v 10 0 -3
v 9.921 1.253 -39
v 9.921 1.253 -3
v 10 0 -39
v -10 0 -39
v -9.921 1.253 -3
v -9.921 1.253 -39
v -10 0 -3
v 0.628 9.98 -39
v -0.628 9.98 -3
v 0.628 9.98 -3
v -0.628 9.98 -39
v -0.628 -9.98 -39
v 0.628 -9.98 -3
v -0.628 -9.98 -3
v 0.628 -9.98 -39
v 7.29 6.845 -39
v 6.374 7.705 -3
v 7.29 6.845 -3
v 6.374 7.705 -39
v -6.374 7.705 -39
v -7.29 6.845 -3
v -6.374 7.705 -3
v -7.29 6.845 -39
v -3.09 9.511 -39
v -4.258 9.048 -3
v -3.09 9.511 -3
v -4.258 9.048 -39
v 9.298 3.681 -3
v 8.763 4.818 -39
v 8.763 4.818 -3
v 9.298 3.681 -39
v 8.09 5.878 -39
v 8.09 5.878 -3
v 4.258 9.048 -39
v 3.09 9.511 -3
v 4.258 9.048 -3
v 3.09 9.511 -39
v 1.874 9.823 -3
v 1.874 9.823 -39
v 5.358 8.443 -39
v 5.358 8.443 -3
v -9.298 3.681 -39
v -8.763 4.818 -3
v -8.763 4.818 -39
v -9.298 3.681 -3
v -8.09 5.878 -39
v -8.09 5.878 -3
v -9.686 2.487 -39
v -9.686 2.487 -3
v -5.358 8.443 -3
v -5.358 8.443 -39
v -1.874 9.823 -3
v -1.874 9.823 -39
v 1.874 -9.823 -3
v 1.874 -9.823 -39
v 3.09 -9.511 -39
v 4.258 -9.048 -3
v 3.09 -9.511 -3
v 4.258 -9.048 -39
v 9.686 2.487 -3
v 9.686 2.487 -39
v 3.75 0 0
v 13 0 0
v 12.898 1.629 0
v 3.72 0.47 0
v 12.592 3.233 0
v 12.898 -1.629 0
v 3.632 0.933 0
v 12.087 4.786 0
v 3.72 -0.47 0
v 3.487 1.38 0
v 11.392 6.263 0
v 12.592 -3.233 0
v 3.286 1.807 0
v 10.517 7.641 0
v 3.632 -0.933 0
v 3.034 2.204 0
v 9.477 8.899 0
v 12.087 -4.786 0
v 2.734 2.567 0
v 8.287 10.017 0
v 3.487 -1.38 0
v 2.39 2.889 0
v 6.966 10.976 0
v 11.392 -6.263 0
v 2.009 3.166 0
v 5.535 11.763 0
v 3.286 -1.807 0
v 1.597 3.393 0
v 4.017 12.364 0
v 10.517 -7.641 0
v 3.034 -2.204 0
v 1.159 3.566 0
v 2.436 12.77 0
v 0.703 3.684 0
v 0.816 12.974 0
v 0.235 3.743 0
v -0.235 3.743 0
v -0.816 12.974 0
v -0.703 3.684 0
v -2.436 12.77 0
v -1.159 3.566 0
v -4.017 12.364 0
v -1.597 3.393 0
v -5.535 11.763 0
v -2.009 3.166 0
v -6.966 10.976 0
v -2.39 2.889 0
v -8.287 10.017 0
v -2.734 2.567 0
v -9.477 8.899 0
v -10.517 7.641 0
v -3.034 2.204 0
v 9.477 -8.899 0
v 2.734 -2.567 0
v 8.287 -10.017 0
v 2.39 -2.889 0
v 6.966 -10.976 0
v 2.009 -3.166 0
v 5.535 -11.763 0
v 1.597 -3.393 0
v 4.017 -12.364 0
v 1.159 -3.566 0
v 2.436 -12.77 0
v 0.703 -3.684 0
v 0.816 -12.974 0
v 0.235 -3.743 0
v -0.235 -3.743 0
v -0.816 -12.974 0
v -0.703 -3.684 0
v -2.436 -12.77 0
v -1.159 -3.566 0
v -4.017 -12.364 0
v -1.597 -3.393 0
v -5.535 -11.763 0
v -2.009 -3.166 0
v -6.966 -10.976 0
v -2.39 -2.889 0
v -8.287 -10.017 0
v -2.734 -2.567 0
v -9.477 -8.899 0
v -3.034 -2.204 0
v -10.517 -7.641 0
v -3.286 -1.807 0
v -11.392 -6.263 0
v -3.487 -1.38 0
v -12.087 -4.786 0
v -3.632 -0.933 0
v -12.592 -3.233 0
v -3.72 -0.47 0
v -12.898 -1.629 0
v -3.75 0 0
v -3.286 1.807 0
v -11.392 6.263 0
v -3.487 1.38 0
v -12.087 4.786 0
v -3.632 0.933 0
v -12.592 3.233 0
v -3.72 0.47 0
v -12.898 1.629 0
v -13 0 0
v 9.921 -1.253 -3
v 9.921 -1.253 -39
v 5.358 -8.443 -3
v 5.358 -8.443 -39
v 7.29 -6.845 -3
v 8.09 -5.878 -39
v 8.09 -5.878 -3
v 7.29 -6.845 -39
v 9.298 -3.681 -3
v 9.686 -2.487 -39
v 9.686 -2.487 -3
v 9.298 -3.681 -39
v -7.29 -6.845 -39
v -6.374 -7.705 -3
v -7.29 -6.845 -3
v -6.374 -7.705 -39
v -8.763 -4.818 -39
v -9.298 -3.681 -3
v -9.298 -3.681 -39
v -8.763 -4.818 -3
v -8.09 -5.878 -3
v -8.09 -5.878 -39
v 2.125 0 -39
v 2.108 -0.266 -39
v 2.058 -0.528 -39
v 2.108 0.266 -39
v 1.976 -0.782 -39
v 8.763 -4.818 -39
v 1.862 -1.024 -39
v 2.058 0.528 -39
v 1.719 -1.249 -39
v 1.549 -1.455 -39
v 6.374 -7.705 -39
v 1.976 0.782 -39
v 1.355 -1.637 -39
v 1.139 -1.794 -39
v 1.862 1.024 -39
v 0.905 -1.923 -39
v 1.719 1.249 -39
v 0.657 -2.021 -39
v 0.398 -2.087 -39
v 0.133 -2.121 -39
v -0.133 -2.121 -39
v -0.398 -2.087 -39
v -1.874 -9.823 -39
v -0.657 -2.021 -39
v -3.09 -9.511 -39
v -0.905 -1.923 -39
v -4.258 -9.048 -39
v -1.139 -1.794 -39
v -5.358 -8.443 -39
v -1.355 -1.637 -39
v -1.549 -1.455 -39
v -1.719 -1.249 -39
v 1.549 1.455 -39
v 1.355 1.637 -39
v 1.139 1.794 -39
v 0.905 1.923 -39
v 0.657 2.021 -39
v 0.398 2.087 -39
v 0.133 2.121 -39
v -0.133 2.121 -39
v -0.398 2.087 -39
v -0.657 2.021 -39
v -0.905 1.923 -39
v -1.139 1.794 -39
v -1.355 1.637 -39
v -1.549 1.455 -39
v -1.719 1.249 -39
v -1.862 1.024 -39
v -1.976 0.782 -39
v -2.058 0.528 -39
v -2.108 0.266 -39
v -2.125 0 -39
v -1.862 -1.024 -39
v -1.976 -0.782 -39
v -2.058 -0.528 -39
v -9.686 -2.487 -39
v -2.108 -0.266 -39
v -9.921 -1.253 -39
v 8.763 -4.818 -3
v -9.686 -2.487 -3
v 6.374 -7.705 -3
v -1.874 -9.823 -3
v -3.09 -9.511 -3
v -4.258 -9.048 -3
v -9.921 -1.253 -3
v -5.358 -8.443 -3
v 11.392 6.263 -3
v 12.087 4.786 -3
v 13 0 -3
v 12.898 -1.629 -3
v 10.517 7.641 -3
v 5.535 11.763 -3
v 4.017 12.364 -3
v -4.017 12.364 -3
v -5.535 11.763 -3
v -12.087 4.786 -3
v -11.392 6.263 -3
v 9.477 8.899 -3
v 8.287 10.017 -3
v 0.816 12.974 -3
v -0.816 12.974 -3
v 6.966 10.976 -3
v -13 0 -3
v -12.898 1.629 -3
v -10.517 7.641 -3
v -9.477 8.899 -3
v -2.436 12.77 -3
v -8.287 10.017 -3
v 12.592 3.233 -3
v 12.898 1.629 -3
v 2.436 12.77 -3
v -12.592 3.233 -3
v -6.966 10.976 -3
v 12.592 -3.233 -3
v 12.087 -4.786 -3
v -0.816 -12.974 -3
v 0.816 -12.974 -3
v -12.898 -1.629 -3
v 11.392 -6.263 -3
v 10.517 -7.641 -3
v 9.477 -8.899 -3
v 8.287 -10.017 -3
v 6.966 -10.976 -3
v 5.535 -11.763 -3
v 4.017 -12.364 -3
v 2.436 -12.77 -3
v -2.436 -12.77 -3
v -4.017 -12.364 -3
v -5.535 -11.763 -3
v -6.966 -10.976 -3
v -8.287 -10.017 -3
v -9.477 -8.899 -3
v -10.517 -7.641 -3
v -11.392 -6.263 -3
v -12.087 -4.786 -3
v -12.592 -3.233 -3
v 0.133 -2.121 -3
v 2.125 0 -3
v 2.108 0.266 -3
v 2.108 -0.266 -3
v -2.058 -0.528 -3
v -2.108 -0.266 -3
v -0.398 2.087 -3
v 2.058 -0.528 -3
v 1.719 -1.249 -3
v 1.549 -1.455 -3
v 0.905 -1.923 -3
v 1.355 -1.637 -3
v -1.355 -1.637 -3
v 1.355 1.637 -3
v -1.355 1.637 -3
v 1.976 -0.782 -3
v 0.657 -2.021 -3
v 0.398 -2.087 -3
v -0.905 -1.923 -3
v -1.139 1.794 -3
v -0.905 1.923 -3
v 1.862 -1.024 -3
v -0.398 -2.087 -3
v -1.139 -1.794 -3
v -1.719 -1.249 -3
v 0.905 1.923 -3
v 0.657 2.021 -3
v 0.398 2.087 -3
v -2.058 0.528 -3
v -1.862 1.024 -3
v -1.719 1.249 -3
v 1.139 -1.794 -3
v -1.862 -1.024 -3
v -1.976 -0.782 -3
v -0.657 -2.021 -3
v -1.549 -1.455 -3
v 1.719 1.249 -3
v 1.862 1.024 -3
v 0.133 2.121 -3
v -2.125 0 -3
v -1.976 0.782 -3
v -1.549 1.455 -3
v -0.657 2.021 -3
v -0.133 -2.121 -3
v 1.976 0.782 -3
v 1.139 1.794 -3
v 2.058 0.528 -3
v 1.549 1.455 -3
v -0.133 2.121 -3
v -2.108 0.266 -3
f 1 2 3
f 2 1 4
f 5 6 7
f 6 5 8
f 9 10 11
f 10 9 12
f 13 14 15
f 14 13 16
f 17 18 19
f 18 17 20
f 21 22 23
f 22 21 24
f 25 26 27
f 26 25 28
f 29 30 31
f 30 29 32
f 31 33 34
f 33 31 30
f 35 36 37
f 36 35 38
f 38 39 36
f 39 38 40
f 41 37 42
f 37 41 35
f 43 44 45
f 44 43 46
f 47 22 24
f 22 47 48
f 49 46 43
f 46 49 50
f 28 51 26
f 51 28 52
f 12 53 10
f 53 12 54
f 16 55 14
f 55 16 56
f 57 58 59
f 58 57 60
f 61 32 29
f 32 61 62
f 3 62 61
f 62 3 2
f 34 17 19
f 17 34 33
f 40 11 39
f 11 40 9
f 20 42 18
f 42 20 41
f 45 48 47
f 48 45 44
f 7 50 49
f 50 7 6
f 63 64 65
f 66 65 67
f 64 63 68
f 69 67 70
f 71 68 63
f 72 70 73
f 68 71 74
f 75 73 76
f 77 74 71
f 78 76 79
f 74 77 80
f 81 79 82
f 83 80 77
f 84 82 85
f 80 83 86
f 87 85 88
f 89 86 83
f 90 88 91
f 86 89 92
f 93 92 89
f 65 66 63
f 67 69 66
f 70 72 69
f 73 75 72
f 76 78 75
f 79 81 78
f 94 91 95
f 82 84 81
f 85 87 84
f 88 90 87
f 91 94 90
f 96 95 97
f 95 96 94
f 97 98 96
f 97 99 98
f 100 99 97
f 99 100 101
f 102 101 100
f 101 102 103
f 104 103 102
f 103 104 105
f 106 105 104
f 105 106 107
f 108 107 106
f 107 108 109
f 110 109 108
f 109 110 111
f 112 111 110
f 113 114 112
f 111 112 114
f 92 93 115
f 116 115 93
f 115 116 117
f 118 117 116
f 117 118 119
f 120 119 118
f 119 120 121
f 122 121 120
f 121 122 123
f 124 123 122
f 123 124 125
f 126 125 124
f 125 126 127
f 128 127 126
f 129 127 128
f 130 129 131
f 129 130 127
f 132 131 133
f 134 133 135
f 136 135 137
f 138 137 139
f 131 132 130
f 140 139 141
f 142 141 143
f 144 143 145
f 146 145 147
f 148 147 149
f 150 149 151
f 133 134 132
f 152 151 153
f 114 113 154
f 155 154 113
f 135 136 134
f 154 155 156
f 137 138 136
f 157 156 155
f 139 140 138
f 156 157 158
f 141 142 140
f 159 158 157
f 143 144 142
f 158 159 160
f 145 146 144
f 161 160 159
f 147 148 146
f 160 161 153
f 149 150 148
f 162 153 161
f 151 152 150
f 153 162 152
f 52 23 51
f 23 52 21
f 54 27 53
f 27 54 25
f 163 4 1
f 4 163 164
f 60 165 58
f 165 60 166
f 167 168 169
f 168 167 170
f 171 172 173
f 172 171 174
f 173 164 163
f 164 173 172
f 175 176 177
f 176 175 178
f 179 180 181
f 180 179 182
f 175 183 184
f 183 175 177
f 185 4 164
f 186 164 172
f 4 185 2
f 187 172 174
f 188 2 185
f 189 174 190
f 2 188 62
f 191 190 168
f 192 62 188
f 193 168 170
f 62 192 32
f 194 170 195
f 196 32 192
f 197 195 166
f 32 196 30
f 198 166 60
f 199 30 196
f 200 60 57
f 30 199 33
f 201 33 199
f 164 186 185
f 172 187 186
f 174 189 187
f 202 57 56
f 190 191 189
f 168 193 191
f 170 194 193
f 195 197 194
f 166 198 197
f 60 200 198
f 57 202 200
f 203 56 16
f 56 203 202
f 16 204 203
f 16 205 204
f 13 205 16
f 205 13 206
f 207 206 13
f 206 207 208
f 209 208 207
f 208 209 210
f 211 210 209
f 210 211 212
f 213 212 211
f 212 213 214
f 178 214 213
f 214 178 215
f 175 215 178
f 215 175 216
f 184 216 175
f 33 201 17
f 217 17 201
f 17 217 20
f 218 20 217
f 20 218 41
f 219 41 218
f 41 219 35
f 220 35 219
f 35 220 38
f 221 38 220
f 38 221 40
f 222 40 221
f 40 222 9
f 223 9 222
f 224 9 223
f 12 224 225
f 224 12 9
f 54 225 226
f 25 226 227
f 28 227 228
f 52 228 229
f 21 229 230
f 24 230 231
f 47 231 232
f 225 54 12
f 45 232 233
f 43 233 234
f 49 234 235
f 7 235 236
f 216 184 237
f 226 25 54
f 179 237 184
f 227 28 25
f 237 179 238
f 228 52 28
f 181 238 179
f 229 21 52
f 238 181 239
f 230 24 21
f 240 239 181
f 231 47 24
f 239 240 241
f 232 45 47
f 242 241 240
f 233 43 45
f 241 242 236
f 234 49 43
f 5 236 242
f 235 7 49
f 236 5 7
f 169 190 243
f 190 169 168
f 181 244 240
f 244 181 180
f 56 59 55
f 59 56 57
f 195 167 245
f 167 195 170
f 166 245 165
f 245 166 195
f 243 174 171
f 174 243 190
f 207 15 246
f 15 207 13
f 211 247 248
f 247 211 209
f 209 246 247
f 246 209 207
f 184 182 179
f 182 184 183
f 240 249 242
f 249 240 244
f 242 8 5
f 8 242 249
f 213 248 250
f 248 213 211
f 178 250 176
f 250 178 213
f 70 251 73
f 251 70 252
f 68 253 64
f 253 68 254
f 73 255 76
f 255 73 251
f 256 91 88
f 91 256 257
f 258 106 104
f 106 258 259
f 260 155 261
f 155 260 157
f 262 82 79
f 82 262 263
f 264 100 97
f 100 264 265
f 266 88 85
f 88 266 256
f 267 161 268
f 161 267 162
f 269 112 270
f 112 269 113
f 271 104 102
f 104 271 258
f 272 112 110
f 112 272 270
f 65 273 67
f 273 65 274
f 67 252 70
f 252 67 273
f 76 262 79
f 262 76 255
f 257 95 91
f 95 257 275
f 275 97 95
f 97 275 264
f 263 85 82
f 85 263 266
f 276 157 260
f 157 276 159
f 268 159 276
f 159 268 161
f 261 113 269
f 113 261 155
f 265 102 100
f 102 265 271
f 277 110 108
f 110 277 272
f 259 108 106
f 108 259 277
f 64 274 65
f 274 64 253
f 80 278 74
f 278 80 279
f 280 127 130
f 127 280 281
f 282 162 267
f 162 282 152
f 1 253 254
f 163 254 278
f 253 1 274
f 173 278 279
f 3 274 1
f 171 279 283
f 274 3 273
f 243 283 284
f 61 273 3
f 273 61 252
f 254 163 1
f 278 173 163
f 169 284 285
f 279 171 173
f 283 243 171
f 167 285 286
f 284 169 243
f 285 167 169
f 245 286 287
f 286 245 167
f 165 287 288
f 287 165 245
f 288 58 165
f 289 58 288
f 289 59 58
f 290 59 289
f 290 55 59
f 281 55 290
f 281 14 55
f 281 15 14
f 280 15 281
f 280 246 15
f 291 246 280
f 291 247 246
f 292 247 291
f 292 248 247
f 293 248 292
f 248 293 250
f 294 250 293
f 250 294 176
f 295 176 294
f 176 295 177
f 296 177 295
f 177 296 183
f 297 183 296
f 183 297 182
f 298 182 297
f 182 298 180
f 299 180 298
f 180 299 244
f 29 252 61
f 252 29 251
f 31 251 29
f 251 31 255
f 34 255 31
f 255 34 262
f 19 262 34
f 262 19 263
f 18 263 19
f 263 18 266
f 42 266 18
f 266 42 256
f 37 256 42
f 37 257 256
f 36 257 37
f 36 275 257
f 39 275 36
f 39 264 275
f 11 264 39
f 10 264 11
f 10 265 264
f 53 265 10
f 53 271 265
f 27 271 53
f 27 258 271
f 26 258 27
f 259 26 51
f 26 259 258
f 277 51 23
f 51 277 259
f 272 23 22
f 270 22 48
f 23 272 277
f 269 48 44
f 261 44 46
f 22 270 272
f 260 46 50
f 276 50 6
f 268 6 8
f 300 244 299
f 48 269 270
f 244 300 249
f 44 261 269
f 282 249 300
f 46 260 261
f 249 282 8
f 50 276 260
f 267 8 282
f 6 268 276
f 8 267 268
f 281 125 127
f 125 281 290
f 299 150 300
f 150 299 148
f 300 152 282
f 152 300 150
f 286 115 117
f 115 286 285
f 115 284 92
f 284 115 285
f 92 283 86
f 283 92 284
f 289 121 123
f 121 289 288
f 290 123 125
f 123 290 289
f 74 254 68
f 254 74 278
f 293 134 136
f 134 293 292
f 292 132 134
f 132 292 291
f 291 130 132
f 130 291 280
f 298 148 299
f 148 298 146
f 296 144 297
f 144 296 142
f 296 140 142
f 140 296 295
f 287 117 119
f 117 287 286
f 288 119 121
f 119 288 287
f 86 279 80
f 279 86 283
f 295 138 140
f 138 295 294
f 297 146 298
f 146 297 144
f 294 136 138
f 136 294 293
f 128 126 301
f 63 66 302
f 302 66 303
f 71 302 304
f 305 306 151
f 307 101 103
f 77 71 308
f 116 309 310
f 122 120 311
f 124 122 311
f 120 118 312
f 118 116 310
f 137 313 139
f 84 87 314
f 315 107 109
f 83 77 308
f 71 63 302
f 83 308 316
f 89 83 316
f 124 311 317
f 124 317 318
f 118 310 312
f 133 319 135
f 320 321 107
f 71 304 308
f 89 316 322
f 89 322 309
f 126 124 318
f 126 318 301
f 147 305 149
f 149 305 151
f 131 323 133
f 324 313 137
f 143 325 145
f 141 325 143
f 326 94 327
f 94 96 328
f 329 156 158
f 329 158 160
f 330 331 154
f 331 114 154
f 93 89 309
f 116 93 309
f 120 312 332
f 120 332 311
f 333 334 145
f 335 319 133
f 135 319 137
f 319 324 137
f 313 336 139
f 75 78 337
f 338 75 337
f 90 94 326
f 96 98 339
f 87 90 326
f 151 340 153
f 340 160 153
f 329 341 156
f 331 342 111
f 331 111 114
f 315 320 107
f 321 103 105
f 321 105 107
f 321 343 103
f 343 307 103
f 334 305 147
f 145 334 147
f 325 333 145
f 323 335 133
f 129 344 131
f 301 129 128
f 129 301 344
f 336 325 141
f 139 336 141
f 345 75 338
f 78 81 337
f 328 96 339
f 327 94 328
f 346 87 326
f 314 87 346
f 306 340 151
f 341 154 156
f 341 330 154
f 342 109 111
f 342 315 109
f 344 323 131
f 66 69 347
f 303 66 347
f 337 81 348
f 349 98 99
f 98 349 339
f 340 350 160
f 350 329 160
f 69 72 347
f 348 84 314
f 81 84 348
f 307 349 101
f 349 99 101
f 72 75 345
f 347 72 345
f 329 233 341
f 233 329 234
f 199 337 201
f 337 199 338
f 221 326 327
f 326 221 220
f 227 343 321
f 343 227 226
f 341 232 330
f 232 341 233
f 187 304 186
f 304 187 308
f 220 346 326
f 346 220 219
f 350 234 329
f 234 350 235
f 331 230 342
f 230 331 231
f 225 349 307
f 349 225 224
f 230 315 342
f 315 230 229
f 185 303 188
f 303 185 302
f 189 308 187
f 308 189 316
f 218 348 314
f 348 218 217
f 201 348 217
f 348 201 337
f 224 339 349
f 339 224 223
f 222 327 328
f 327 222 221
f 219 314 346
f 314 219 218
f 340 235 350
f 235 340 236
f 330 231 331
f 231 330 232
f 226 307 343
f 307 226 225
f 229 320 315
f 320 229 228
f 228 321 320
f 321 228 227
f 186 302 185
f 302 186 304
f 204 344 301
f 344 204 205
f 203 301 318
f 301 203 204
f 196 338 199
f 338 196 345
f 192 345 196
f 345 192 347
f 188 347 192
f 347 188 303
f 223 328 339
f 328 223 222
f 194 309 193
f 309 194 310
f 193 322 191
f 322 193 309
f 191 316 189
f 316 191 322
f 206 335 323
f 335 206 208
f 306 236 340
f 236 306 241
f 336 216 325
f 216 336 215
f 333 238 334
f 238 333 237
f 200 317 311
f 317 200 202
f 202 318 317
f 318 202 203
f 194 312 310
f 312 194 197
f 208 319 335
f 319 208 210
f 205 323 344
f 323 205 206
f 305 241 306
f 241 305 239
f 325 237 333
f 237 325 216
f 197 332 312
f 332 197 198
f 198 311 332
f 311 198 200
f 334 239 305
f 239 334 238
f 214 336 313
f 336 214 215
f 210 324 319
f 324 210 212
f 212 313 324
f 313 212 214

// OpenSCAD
$fn = 50;


difference() {
	union() {
		translate(v = [0, 0, -39.0000000000]) {
			cylinder(h = 39, r = 10.0000000000);
		}
		translate(v = [0, 0, -3.0000000000]) {
			cylinder(h = 3, r = 13.0000000000);
		}
	}
	union() {
		translate(v = [0, 0, 0]) {
			rotate(a = [0, 0, 0]) {
				difference() {
					union() {
						#translate(v = [0, 0, -39.0000000000]) {
							cylinder(h = 39, r = 2.0000000000);
						}
						#translate(v = [0, 0, -3]) {
							cylinder(h = 3, r = 10.0000000000, r1 = 2.1250000000, r2 = 3.7500000000);
						}
						#translate(v = [0, 0, -39.0000000000]) {
							cylinder(h = 39, r = 2.1250000000);
						}
						#translate(v = [0, 0, -39.0000000000]) {
							cylinder(h = 39, r = 2.0000000000);
						}
					}
					union();
				}
			}
		}
	}
}
